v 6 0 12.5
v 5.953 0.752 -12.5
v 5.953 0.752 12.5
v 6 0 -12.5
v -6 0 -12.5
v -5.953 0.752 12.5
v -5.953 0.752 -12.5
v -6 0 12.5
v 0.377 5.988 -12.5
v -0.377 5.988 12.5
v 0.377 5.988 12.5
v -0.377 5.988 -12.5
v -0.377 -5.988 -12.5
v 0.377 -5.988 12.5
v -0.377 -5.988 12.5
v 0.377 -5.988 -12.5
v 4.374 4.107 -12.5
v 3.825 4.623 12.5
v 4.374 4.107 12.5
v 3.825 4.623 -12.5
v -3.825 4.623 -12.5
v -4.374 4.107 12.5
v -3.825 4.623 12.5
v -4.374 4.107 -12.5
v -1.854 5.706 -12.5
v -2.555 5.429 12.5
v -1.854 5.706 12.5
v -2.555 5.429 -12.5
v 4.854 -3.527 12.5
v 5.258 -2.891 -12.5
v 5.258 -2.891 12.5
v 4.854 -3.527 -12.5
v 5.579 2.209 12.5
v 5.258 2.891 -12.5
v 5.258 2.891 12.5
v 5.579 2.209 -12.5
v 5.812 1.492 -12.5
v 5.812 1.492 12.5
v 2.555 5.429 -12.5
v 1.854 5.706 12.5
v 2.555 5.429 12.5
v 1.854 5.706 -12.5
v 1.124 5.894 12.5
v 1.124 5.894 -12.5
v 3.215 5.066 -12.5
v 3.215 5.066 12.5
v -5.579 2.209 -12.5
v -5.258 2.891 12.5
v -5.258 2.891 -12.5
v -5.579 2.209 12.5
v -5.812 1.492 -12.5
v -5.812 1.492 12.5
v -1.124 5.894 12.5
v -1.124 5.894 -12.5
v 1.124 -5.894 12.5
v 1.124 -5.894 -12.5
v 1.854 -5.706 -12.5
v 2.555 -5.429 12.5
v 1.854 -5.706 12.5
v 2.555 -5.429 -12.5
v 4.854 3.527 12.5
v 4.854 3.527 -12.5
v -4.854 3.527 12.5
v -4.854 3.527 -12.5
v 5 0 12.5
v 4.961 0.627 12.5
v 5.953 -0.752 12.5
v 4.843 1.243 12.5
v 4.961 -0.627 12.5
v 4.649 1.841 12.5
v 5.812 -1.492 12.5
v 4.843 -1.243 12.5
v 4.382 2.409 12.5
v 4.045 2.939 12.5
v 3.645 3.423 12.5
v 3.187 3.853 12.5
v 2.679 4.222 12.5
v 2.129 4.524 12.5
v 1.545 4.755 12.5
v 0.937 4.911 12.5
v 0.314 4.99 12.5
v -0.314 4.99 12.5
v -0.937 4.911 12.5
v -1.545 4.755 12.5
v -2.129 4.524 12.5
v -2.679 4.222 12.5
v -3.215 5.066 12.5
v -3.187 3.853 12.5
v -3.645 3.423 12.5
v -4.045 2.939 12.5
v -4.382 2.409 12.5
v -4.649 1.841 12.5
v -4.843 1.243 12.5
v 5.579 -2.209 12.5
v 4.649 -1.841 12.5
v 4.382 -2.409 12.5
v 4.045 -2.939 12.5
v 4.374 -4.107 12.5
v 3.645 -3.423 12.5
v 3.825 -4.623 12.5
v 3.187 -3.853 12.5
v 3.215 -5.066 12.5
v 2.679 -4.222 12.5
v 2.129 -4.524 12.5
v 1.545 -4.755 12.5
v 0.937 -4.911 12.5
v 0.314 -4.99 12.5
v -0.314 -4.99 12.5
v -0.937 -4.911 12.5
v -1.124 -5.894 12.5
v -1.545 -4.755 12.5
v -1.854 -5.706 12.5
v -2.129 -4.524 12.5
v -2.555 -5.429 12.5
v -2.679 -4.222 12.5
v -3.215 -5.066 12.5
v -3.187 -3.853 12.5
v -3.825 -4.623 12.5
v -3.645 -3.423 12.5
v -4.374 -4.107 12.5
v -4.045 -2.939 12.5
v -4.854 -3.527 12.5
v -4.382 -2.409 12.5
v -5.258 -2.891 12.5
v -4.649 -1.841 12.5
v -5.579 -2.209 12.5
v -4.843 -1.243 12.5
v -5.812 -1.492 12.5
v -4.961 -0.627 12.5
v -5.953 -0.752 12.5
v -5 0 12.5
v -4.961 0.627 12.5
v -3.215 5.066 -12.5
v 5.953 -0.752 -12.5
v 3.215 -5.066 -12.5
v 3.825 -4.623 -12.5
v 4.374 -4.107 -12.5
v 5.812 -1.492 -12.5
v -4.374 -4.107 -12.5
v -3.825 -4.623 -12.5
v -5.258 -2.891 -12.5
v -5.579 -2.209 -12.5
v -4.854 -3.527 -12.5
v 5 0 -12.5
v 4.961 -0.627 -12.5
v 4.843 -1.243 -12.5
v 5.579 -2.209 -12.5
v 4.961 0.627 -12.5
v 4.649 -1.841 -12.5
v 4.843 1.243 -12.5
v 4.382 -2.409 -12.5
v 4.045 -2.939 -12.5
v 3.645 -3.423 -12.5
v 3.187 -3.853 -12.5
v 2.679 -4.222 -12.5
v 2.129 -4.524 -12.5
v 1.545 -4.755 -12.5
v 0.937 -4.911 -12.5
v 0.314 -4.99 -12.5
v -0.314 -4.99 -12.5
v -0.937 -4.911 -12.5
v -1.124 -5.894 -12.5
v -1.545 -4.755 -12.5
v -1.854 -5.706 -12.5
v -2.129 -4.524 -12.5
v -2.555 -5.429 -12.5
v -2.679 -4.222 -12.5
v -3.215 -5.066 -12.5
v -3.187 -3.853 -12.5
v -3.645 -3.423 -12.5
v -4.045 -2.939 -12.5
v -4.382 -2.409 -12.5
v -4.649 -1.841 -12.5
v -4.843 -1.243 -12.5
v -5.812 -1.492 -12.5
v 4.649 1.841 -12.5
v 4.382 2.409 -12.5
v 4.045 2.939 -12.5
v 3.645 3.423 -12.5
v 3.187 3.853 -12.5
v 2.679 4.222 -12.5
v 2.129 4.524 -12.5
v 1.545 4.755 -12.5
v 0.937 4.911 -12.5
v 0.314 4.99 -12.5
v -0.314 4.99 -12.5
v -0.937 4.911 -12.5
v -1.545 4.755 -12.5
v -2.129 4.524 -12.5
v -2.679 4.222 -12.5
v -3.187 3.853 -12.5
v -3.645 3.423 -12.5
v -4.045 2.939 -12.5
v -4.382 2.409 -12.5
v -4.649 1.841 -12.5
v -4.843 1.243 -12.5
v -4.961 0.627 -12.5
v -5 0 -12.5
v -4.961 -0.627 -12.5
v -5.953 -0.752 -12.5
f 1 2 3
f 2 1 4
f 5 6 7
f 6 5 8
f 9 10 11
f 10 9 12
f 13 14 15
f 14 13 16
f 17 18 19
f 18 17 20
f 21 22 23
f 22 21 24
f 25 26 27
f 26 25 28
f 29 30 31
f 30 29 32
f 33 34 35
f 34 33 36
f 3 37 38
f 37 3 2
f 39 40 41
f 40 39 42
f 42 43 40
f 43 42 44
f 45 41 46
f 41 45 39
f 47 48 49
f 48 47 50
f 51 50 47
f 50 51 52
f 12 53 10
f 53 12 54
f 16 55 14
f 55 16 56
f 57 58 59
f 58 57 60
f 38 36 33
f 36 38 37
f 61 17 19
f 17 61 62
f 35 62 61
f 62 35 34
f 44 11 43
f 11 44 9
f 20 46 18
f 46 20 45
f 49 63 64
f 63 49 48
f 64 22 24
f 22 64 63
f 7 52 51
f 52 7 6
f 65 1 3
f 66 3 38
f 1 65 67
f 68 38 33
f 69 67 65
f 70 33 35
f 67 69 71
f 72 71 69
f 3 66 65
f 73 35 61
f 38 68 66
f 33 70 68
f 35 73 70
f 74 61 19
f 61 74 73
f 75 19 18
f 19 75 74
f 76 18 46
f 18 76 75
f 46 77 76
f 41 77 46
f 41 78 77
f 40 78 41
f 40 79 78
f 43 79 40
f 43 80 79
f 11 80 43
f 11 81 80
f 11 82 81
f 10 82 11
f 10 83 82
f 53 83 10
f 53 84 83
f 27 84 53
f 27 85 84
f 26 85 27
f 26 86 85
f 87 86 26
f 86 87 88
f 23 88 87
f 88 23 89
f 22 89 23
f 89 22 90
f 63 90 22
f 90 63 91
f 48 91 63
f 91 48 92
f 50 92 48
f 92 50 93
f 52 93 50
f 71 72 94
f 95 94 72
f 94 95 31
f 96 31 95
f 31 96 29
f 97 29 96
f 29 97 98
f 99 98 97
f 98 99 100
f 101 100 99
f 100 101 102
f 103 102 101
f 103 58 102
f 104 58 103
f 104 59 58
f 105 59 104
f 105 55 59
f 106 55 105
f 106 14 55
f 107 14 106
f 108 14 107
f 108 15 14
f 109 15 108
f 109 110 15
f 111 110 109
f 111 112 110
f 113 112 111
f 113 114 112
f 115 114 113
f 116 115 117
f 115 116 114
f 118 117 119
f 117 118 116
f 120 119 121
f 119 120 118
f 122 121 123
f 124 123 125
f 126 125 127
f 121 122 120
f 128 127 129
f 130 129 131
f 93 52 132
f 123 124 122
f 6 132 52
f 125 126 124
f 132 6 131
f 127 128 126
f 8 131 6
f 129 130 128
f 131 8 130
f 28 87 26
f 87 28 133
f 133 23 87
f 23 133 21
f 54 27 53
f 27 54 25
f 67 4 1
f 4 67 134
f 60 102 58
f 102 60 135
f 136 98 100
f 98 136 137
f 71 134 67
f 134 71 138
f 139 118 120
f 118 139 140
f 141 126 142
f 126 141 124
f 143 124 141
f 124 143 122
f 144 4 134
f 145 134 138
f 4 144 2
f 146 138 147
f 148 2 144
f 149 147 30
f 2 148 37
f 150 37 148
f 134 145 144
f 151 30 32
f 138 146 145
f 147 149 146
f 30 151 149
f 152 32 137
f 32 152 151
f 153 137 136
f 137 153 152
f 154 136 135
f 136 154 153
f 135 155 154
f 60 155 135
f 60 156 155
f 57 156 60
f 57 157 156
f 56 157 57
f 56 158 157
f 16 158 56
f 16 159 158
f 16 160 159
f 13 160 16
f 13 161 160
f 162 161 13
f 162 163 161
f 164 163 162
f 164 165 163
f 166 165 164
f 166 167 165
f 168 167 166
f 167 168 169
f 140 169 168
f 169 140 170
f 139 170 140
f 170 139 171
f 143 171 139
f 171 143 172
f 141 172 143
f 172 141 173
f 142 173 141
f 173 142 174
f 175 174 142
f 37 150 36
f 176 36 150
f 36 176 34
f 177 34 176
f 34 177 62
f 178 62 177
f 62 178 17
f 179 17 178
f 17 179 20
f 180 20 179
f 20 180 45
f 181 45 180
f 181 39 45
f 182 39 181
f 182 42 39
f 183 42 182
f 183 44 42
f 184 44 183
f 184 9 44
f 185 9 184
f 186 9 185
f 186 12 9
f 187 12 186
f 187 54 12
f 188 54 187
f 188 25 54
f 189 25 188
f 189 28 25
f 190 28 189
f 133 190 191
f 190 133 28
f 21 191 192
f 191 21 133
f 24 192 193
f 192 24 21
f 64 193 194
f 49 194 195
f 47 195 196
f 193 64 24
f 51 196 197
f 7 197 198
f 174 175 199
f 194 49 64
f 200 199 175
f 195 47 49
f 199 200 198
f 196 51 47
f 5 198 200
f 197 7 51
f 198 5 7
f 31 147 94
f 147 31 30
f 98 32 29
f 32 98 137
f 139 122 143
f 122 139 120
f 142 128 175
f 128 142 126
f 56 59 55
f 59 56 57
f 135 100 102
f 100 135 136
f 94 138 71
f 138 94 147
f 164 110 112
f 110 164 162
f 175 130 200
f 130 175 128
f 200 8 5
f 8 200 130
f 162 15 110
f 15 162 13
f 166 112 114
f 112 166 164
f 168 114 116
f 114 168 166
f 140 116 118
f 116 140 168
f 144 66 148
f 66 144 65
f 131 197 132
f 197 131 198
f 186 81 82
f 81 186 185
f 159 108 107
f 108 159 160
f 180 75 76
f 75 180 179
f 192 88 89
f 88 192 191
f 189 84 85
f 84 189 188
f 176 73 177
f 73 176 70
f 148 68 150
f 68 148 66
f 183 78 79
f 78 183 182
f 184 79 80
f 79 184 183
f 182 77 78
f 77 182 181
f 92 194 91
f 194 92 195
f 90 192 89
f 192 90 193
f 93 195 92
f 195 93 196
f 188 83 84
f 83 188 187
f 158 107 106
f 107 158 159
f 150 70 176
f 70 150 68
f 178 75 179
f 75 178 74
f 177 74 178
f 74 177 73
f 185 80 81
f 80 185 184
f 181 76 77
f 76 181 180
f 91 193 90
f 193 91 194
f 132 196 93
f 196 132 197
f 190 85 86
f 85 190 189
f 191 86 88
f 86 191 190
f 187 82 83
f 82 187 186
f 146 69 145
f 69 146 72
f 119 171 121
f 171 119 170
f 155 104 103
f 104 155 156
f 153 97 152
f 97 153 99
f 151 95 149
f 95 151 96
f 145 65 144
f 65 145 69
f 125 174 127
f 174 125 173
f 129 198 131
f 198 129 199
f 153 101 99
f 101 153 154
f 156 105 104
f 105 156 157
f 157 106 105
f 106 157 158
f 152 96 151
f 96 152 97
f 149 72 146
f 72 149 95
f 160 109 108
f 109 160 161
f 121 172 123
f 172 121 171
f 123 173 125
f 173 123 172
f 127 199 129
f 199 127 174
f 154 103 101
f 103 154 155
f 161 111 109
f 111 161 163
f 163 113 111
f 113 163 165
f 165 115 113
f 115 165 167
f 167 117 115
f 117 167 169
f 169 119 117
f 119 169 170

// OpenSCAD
$fn = 50;


difference() {
	union() {
		translate(v = [0, 0, -12.5000000000]) {
			cylinder(h = 25, r = 6.0000000000);
		}
	}
	union() {
		translate(v = [0, 0, -100.0000000000]) {
			cylinder(h = 200, r = 5.0000000000);
		}
	}
}
